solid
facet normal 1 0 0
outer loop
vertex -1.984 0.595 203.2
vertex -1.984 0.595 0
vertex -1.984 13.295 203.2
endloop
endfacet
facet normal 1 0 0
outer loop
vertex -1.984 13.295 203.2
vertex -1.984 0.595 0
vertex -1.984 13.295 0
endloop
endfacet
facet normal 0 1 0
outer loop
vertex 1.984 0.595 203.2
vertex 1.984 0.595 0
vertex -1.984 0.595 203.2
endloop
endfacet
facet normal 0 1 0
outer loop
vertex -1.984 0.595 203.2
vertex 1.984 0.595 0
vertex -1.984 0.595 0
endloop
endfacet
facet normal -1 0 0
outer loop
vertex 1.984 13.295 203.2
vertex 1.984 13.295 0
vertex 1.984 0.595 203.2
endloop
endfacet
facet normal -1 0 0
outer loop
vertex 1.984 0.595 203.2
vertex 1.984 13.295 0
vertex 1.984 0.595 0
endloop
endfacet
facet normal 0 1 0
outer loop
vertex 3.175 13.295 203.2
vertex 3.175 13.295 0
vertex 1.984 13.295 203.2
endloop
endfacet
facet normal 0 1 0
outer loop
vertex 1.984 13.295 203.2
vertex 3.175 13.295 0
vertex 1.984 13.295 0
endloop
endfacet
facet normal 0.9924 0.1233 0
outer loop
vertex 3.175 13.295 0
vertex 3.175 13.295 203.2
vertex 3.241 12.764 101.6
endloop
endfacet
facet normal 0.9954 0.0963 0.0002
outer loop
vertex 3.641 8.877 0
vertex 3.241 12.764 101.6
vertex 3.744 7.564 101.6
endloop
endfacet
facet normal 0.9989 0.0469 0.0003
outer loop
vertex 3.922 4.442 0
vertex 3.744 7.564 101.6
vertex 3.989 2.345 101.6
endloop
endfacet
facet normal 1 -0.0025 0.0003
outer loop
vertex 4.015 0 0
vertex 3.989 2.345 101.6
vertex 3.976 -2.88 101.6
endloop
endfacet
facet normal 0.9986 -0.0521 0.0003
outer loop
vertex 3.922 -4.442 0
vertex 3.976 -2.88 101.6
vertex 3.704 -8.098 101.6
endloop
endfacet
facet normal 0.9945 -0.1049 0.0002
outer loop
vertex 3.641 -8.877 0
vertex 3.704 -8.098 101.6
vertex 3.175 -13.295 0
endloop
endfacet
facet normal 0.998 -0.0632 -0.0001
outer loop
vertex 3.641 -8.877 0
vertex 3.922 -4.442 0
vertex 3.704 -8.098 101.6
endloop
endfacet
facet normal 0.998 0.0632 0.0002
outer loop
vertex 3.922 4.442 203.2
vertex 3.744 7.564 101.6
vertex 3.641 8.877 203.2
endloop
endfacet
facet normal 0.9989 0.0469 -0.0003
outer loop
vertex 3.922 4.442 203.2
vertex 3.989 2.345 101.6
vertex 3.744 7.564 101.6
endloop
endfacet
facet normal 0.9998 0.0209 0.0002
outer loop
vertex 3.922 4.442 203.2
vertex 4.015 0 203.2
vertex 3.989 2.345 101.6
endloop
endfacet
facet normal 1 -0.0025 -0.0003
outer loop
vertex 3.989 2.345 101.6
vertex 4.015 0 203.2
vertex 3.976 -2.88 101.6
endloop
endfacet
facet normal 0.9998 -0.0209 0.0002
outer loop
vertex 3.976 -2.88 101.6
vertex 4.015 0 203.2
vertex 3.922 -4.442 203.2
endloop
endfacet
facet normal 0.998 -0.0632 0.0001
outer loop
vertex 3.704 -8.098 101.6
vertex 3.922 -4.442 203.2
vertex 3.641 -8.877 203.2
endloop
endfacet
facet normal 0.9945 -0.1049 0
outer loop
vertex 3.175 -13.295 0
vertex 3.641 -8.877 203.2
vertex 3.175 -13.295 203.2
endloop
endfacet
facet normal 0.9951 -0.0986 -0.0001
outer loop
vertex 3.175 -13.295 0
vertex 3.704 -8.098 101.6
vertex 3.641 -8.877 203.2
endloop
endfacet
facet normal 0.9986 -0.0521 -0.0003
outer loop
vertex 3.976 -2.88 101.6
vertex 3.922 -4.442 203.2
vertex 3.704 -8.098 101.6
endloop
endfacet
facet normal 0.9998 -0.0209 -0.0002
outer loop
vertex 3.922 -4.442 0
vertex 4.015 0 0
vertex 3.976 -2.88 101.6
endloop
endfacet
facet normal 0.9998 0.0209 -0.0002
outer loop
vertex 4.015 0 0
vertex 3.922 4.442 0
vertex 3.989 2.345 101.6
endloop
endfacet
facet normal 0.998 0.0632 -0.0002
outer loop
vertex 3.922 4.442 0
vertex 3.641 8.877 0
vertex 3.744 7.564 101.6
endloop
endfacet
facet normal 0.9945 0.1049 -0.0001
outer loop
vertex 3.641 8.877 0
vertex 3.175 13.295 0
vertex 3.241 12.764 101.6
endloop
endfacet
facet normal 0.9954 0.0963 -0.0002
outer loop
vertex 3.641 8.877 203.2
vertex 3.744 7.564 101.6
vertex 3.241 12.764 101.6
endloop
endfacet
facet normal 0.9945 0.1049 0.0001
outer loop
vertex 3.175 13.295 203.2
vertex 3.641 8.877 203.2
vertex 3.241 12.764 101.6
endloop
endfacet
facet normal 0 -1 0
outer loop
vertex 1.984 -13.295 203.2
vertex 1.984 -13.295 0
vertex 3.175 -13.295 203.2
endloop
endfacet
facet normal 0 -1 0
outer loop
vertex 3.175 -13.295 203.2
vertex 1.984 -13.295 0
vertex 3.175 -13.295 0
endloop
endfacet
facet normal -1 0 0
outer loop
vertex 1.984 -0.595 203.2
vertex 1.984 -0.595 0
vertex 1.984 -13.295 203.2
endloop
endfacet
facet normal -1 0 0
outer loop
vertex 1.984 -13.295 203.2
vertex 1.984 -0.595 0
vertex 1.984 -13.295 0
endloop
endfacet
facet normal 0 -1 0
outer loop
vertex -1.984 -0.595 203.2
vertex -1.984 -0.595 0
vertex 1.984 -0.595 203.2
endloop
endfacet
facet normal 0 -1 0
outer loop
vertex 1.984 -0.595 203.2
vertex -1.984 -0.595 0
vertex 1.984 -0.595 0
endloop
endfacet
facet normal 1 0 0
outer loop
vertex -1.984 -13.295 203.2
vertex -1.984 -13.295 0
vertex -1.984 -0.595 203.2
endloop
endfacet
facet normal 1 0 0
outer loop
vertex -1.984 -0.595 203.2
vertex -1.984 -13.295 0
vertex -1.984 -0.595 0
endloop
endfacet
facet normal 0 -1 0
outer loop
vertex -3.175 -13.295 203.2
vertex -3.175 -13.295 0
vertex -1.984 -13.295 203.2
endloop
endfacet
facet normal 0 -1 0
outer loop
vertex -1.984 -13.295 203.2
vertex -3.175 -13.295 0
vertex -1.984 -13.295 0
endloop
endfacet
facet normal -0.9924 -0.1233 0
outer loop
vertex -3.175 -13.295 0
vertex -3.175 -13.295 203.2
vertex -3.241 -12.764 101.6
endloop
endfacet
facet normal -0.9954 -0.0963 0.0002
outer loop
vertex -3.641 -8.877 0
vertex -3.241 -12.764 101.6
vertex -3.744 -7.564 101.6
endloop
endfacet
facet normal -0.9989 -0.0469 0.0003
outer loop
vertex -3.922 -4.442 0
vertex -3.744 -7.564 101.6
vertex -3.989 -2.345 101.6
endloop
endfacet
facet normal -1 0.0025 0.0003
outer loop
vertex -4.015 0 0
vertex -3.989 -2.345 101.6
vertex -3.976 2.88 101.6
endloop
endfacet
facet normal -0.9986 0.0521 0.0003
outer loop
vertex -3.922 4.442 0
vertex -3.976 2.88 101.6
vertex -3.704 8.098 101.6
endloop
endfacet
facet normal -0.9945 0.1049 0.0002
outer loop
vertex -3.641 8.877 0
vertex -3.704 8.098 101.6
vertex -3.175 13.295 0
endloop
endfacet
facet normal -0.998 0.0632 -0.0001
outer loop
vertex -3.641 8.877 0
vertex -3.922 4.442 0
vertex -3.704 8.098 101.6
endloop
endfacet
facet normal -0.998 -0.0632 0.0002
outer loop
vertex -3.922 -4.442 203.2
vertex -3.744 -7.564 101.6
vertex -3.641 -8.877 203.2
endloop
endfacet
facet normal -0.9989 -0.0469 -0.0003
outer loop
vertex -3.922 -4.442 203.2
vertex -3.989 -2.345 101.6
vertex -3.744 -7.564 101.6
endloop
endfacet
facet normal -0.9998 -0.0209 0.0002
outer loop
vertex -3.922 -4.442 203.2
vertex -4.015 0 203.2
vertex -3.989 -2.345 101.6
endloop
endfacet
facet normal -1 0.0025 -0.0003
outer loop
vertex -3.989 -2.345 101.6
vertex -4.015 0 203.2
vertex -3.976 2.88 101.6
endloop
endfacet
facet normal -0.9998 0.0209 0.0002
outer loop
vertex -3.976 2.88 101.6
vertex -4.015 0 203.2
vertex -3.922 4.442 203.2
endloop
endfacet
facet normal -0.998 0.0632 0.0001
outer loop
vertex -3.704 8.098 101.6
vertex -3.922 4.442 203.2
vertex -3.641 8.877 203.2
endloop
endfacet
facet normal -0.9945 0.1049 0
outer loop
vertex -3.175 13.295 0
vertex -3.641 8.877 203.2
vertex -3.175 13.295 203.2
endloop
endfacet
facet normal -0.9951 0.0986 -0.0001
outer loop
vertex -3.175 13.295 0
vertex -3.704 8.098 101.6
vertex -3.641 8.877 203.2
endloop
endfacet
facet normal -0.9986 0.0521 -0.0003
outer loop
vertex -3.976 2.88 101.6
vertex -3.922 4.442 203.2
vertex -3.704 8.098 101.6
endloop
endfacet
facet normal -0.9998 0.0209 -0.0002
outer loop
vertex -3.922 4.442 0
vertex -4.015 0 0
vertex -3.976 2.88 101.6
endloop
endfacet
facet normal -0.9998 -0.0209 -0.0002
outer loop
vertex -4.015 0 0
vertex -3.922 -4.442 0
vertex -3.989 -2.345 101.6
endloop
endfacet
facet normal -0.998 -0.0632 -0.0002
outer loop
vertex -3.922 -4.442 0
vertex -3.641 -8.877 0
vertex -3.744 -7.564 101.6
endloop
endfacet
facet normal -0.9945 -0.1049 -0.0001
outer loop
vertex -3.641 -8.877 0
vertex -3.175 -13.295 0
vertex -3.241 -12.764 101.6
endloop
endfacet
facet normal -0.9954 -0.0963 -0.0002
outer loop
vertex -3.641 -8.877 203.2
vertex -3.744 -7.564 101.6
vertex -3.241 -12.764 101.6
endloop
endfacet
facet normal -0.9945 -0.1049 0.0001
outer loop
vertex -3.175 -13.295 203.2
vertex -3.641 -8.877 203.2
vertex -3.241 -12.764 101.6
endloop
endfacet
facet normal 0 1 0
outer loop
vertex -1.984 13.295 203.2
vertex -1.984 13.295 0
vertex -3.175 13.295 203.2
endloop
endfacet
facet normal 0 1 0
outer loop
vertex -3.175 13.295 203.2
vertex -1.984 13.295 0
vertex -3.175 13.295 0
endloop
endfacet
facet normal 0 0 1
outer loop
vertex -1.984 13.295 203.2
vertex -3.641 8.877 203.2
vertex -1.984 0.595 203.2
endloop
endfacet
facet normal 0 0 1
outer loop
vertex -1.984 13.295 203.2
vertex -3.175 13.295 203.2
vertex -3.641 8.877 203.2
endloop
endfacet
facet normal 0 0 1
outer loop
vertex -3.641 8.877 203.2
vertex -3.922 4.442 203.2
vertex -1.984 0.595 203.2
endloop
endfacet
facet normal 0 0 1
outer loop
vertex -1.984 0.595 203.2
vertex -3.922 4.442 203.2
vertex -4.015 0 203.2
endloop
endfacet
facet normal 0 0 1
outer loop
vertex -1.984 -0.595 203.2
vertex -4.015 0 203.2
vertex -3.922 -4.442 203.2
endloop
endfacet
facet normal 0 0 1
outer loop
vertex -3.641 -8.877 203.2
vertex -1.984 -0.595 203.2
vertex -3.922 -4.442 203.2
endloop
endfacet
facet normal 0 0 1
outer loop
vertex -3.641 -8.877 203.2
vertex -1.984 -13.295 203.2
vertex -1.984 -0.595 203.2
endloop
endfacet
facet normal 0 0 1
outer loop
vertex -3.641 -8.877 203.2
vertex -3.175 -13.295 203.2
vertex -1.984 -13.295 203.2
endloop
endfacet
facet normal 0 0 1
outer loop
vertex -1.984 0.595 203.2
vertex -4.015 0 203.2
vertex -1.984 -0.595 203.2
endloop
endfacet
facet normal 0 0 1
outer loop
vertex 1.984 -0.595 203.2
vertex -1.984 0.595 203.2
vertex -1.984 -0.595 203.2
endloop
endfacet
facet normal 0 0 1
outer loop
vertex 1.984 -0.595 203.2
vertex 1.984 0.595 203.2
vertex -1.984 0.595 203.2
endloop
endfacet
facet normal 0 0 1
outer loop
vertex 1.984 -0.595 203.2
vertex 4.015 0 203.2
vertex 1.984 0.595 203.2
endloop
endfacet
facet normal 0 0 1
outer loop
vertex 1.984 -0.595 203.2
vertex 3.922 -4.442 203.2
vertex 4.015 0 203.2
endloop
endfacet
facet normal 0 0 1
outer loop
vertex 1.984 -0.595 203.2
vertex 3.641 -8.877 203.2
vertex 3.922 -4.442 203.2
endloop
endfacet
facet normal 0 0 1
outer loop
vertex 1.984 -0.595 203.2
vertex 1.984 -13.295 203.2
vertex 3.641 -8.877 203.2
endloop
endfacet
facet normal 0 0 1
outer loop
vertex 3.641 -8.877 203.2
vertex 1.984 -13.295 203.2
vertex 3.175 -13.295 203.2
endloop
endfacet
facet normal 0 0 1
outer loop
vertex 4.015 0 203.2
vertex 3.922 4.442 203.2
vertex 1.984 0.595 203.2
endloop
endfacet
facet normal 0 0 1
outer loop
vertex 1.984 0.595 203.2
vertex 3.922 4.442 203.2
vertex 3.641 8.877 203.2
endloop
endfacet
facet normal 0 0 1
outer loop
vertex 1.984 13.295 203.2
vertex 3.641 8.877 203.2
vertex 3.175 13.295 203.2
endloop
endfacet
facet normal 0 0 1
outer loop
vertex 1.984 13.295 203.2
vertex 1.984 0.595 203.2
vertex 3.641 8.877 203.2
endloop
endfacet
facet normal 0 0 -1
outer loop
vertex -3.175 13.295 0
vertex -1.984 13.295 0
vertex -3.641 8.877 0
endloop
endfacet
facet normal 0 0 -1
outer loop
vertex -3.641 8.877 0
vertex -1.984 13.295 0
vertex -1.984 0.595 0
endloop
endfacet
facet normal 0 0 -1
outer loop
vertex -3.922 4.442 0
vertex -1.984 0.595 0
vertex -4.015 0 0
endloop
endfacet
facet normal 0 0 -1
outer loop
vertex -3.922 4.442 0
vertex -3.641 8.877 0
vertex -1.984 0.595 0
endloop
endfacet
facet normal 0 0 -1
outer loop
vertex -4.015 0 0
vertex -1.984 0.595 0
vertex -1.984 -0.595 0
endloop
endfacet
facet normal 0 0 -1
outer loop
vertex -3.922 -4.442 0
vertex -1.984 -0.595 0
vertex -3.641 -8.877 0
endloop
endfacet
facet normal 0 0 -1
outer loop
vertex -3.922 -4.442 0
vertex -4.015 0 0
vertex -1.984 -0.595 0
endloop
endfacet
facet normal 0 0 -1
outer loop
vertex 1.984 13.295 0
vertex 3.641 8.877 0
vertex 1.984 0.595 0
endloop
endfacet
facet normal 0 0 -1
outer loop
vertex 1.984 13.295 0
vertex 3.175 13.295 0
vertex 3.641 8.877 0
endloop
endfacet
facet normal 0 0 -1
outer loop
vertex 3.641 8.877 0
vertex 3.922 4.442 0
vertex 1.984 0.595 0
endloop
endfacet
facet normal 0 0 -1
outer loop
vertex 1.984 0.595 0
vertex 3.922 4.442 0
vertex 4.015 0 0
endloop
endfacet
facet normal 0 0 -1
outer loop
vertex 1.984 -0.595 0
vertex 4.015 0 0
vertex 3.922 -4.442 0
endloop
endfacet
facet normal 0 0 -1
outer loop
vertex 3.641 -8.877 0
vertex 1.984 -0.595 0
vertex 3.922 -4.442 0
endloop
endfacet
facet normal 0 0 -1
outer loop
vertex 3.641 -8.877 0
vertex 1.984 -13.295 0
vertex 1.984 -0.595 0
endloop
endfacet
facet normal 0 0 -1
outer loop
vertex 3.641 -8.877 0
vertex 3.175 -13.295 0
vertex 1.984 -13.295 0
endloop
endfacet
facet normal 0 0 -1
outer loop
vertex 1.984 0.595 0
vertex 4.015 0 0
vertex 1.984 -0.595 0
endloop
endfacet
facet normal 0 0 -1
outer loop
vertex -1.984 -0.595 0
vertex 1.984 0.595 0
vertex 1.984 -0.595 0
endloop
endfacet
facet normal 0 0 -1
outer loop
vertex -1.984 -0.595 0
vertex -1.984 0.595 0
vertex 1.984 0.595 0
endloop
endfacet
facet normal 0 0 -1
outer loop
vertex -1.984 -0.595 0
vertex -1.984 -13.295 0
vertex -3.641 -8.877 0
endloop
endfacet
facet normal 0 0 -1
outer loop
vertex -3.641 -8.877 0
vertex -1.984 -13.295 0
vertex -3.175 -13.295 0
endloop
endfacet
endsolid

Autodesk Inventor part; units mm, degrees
ref_plane "YZ Plane" through (0, 0, 0) normal (1, 0, 0) x (0, 1, 0)
ref_plane "XZ Plane" through (0, 0, 0) normal (0, 1, 0) x (-1, 0, 0)
ref_plane "XY Plane" through (0, 0, 0) normal (0, 0, 1) x (1, 0, 0)
sketch "Sketch1" plane through (0, 0, 0) normal (0, 0, 1) x (1, 0, 0)
  arc A0 (-3.175, 13.2953) -> (-3.175, -13.2953) centre (101.6, 0) ccw
  arc A1 (3.175, -13.2953) -> (3.175, 13.2953) centre (-101.6, 0) ccw
  line L0 (-1.9844, 0.5953) -> (1.9844, 0.5953)
  line L1 (-1.9844, -0.5953) -> (1.9844, -0.5953)
  line L2 (1.9844, 13.2953) -> (1.9844, 0.5953)
  line L3 (1.9844, -0.5953) -> (1.9844, -13.2953)
  line L4 (-1.9844, 13.2953) -> (-1.9844, 0.5953)
  line L5 (-1.9844, -0.5953) -> (-1.9844, -13.2953)
  line L6 (-3.175, 13.2953) -> (-1.9844, 13.2953)
  line L7 (1.9844, 13.2953) -> (3.175, 13.2953)
  line L8 (-3.175, -13.2953) -> (-1.9844, -13.2953)
  line L9 (1.9844, -13.2953) -> (3.175, -13.2953)
  point P0 (0, 0)
  dimension "d4" = 1.9844
  dimension "d5" = 3.9688
  dimension "d6" = 0.5953
  dimension "d7" = 1.1906
  dimension "d8" = 13.2953
  dimension "d9" = 26.5906
  dimension "d10" = 101.6
  dimension "d12" = 1.1906
extrude "Extrusion1" add sketch "Sketch1" along normal blind 203.2
equation "\"d6\" = 0.5 * d7"
equation "\"d12\" = d7"
equation "\"d1\" = 2 * d0"
equation "\"d0\" = 13.295313"
properties part number "GE-12088-01"
